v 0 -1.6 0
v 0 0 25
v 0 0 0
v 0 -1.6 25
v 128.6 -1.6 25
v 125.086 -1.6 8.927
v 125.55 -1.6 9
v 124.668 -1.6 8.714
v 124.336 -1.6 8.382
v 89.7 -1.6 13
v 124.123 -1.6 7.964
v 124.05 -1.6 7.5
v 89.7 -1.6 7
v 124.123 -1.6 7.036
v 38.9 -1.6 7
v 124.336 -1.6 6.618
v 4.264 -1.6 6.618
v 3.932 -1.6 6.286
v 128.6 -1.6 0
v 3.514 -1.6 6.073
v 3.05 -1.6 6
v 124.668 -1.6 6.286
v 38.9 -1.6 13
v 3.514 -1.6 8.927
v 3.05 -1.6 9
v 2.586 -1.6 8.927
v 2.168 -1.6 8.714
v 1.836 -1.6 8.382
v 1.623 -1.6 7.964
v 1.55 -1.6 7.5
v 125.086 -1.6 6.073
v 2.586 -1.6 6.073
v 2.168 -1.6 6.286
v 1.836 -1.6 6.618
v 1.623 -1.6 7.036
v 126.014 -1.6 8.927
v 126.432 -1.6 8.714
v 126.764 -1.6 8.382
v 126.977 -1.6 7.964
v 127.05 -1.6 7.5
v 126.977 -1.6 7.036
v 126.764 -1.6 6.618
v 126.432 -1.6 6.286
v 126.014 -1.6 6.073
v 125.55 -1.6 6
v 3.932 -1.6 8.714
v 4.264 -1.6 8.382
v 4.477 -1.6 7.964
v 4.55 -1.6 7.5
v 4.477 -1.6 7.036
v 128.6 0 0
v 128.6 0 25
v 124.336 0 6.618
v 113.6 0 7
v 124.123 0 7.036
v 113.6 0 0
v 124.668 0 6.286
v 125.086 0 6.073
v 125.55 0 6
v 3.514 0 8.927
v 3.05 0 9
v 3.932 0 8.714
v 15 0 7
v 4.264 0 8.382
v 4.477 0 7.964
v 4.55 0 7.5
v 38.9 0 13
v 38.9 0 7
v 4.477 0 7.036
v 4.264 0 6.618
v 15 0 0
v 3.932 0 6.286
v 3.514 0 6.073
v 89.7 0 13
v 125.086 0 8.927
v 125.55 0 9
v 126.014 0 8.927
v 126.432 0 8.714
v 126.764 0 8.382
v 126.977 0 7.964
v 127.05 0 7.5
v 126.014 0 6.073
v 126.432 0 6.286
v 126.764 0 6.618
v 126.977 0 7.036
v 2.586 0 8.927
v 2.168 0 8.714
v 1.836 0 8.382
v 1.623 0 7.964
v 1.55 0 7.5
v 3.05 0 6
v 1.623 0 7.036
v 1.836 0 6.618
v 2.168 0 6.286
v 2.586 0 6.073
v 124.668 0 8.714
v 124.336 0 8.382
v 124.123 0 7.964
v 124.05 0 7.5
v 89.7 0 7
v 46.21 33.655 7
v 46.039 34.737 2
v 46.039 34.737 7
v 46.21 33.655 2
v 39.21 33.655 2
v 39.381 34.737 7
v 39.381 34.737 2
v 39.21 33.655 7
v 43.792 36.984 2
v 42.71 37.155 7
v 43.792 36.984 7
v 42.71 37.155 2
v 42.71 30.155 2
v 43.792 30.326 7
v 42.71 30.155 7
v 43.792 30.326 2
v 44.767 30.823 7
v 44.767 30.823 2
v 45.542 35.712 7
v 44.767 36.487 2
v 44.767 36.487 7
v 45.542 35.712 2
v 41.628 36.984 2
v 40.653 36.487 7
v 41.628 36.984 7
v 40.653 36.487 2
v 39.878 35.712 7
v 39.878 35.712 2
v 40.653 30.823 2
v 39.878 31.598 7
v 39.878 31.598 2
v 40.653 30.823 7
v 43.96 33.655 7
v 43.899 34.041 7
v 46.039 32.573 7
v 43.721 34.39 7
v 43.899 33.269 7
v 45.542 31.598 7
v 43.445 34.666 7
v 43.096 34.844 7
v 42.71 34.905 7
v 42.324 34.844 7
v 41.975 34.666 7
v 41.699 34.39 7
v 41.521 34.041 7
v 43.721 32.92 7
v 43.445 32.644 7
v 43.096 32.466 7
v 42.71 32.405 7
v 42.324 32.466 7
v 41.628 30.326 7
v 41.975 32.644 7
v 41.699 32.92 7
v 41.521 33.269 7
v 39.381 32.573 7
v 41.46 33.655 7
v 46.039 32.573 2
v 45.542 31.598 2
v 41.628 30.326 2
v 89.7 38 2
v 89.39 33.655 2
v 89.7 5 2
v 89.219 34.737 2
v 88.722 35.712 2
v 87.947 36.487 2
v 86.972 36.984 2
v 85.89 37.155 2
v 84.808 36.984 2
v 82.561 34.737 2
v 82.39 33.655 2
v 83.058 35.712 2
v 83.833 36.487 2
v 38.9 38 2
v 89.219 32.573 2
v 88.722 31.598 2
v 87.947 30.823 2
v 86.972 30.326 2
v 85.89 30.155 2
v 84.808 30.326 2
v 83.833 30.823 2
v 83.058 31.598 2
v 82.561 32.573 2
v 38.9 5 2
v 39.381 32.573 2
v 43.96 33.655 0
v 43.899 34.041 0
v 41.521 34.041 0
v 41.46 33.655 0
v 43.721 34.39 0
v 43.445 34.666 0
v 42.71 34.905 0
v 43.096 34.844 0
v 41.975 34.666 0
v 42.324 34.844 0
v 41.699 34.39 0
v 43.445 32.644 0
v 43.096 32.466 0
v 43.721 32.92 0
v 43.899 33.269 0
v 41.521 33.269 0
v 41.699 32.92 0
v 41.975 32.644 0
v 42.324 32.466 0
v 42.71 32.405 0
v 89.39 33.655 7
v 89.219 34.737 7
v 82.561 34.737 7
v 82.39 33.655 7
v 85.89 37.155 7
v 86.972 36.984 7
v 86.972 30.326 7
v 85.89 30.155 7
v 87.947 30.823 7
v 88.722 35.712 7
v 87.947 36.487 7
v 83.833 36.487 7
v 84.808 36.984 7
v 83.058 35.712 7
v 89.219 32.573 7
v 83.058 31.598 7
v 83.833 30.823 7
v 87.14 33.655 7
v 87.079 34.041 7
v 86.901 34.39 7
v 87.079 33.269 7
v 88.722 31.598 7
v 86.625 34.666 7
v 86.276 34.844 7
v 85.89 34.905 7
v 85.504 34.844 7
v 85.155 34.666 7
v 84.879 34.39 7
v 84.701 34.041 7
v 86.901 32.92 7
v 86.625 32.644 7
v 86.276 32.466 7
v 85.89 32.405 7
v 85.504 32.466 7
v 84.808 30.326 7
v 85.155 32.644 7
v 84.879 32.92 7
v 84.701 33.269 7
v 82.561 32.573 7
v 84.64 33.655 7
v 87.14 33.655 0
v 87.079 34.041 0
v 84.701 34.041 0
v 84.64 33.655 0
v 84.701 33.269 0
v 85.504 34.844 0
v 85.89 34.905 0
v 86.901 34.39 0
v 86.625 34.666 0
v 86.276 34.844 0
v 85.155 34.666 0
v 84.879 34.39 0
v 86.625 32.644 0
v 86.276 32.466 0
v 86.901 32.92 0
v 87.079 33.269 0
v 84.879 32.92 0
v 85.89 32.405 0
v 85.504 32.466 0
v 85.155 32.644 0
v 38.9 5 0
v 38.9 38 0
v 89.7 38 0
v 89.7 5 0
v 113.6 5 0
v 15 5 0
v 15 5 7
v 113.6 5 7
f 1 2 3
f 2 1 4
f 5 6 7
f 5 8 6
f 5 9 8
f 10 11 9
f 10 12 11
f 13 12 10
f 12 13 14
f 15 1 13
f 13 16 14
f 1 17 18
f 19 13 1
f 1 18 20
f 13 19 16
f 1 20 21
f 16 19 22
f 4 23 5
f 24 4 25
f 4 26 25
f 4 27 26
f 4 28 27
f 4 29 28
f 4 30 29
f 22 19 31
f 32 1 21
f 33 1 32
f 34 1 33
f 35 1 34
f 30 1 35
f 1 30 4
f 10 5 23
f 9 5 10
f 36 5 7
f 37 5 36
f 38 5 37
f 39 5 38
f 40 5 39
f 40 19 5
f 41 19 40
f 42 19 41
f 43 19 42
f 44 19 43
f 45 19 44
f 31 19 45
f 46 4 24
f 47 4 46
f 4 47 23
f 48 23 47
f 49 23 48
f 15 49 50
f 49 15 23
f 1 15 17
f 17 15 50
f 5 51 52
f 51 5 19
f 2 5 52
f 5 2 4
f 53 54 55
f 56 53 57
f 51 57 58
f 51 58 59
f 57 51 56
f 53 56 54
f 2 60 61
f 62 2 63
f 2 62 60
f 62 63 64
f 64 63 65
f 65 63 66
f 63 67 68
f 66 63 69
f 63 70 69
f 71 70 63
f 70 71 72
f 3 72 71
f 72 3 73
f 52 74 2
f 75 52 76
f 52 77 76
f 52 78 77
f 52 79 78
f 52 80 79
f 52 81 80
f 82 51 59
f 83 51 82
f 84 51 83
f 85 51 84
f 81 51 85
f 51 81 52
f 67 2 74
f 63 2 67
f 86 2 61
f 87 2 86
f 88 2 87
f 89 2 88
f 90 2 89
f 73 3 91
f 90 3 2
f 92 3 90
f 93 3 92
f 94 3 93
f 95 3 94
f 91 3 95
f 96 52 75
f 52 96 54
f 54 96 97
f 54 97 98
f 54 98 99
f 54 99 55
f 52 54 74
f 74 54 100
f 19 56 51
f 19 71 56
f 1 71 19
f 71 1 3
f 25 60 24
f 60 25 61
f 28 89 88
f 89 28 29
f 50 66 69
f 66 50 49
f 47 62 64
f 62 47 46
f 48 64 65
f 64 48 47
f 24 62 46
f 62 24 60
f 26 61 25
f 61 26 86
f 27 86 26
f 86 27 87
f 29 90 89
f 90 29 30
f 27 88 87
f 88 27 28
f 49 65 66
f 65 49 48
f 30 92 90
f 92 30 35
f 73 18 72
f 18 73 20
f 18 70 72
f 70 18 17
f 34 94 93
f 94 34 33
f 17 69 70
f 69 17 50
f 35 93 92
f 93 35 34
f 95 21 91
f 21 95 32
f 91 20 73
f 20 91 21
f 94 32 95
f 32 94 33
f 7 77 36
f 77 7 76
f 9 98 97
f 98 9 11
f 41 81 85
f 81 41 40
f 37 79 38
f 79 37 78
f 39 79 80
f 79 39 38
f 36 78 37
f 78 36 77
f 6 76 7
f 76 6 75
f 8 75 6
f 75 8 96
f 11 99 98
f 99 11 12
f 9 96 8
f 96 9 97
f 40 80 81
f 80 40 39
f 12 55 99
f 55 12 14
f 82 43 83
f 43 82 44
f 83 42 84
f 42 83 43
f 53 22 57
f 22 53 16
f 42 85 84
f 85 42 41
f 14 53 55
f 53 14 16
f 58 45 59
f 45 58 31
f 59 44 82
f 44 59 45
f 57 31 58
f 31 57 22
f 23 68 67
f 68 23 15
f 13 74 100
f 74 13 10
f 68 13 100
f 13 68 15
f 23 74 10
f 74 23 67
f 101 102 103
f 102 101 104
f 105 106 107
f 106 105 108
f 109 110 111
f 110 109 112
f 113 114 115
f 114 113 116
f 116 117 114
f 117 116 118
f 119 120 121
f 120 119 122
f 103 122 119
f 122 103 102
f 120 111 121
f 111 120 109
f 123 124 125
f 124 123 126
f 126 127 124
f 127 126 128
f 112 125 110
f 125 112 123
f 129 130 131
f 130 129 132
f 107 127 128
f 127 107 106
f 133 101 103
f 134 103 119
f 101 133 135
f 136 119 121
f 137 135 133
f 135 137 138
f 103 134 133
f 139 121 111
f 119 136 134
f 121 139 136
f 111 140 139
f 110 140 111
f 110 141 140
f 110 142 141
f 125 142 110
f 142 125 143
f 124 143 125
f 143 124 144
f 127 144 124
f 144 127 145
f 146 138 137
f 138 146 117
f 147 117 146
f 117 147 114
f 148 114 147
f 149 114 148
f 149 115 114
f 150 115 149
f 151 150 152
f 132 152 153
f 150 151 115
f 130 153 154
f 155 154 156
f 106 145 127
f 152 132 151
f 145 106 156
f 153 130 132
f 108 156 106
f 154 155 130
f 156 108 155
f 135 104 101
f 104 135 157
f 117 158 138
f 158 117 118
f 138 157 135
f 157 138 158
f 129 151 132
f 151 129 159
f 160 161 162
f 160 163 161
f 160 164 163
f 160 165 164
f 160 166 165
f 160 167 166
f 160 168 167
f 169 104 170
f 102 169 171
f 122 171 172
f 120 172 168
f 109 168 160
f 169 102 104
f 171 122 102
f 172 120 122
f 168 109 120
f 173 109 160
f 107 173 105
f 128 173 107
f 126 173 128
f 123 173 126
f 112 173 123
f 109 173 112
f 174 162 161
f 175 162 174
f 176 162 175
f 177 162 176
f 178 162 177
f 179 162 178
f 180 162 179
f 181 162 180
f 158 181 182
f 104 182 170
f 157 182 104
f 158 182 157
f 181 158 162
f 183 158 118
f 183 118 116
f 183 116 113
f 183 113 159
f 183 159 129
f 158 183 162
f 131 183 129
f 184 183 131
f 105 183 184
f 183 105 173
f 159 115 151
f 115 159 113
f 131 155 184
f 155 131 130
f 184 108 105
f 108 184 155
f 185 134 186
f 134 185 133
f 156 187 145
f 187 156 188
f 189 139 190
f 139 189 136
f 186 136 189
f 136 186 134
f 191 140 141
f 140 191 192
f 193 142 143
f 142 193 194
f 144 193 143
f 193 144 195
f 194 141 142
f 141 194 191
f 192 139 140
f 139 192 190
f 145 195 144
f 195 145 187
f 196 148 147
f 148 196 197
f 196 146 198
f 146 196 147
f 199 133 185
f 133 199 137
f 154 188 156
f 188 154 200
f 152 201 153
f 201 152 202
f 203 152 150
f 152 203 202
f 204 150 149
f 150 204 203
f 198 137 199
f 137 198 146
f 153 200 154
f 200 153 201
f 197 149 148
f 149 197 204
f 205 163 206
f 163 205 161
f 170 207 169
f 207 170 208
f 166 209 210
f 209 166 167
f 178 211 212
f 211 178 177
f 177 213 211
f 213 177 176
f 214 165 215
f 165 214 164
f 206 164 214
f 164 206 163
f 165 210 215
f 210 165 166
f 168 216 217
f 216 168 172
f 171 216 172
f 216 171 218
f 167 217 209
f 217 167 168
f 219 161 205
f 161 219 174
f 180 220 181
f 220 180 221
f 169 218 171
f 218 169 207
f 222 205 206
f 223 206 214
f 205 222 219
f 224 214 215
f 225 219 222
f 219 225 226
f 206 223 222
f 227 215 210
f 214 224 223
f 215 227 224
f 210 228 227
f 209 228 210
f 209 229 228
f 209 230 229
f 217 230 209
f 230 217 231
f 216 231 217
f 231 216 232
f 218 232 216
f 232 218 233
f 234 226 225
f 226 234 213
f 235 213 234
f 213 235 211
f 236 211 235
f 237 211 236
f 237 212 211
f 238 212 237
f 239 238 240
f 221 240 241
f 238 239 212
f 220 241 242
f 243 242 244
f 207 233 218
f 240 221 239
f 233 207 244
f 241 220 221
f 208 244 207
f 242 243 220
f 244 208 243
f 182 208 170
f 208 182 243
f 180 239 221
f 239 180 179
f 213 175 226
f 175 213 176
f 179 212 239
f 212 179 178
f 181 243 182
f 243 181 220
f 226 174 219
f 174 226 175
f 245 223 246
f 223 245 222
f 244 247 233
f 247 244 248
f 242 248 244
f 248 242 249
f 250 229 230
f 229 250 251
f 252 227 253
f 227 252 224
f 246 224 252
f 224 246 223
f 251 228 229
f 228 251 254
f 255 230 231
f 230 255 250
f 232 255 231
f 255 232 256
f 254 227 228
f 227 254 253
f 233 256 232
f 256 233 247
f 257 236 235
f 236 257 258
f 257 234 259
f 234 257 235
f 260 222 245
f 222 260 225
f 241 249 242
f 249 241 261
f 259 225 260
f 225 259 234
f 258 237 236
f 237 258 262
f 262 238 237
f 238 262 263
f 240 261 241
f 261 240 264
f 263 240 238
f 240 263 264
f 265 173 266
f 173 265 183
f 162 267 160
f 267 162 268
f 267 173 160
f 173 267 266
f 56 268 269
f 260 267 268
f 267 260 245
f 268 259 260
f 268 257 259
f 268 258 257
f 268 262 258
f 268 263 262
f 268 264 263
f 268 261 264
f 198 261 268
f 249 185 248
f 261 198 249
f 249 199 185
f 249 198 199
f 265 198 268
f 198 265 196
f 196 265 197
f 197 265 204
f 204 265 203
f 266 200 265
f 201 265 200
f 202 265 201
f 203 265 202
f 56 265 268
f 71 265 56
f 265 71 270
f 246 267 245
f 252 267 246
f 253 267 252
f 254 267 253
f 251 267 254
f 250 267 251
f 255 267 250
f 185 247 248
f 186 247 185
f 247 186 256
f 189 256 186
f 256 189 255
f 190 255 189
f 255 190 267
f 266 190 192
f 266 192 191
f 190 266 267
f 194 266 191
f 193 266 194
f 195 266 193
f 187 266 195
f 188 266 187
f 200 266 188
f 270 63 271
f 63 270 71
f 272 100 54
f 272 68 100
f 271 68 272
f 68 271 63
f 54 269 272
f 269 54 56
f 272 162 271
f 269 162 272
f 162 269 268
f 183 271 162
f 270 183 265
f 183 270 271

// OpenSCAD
/************************************************************************

	mini-box-cf200_podule.scad
    
	Mini-box CF-200 Acorn Archimedies CF card podule bracket
    Copyright (C) 2019 Simon Inns
    
    This is free software: you can redistribute it and/or modify
	it under the terms of the GNU General Public License as published by
	the Free Software Foundation, either version 3 of the License, or
	(at your option) any later version.
    
    This program is distributed in the hope that it will be useful,
    but WITHOUT ANY WARRANTY; without even the implied warranty of
    MERCHANTABILITY or FITNESS FOR A PARTICULAR PURPOSE.  See the
    GNU General Public License for more details.
    
    You should have received a copy of the GNU General Public License
    along with this program.  If not, see <http://www.gnu.org/licenses/>.
	
    Email: simon.inns@gmail.com
    
************************************************************************/

$fn = 20;

// Back plate
rotate(a=[90,0,0]) {
    difference() {
        // Main plate
        cube([128.6, 25.0, 1.6], center = false);

        // M2.5 screw hole left
        translate([(128.6 - 122.5) / 2, 7.5, 0.0]) {
            cylinder(3.0, 3.0 / 2, 3.0 / 2);
        }

        // M2.5 screw hole right
        translate([128.6 - ((128.6 - 122.5) / 2), 7.5, 0.0]) {
            cylinder(3.0, 3.0 / 2, 3.0 / 2);
        }

        // CF card slot
        translate([(128.6 - 50.8) / 2, 7, 0]) {
            cube([50.8, 6, 1.6]);
        }   
    }
}

// CF-200 base-plate
difference() {
    translate([(128.6 - 50.8) / 2, 0, 0]) {
        cube([50.8, 38, 2]);
    }

    translate([((128.6 - 50.8) / 2) + 3.81, 44.45 - 10.795, 0]) {
        cylinder(2.0, 1.25, 1.25);
    }

    translate([((128.6 - 50.8) / 2) + (50.8 - 3.81), 44.45 - 10.795, 0]) {
        cylinder(2.0, 1.25, 1.25);
    }
}

// Bar to make it rigid
translate([(30) / 2, 0, 0]) {
    cube([128.6 - 30, 5, 7]);
}

// CF-200 Screws
difference() {
    translate([((128.6 - 50.8) / 2) + 3.81, 44.45 - 10.795, 2]) {
        cylinder(5.0, 3.5, 3.5);
    }

    translate([((128.6 - 50.8) / 2) + 3.81, 44.45 - 10.795, 2]) {
        cylinder(5.0, 1.25, 1.25);
    }
}

difference() {
    translate([((128.6 - 50.8) / 2) + (50.8 - 3.81), 44.45 - 10.795, 2]) {
        cylinder(5.0, 3.5, 3.5);
    }

    translate([((128.6 - 50.8) / 2) + (50.8 - 3.81), 44.45 - 10.795, 2]) {
        cylinder(5.0, 1.25, 1.25);
    }
}
